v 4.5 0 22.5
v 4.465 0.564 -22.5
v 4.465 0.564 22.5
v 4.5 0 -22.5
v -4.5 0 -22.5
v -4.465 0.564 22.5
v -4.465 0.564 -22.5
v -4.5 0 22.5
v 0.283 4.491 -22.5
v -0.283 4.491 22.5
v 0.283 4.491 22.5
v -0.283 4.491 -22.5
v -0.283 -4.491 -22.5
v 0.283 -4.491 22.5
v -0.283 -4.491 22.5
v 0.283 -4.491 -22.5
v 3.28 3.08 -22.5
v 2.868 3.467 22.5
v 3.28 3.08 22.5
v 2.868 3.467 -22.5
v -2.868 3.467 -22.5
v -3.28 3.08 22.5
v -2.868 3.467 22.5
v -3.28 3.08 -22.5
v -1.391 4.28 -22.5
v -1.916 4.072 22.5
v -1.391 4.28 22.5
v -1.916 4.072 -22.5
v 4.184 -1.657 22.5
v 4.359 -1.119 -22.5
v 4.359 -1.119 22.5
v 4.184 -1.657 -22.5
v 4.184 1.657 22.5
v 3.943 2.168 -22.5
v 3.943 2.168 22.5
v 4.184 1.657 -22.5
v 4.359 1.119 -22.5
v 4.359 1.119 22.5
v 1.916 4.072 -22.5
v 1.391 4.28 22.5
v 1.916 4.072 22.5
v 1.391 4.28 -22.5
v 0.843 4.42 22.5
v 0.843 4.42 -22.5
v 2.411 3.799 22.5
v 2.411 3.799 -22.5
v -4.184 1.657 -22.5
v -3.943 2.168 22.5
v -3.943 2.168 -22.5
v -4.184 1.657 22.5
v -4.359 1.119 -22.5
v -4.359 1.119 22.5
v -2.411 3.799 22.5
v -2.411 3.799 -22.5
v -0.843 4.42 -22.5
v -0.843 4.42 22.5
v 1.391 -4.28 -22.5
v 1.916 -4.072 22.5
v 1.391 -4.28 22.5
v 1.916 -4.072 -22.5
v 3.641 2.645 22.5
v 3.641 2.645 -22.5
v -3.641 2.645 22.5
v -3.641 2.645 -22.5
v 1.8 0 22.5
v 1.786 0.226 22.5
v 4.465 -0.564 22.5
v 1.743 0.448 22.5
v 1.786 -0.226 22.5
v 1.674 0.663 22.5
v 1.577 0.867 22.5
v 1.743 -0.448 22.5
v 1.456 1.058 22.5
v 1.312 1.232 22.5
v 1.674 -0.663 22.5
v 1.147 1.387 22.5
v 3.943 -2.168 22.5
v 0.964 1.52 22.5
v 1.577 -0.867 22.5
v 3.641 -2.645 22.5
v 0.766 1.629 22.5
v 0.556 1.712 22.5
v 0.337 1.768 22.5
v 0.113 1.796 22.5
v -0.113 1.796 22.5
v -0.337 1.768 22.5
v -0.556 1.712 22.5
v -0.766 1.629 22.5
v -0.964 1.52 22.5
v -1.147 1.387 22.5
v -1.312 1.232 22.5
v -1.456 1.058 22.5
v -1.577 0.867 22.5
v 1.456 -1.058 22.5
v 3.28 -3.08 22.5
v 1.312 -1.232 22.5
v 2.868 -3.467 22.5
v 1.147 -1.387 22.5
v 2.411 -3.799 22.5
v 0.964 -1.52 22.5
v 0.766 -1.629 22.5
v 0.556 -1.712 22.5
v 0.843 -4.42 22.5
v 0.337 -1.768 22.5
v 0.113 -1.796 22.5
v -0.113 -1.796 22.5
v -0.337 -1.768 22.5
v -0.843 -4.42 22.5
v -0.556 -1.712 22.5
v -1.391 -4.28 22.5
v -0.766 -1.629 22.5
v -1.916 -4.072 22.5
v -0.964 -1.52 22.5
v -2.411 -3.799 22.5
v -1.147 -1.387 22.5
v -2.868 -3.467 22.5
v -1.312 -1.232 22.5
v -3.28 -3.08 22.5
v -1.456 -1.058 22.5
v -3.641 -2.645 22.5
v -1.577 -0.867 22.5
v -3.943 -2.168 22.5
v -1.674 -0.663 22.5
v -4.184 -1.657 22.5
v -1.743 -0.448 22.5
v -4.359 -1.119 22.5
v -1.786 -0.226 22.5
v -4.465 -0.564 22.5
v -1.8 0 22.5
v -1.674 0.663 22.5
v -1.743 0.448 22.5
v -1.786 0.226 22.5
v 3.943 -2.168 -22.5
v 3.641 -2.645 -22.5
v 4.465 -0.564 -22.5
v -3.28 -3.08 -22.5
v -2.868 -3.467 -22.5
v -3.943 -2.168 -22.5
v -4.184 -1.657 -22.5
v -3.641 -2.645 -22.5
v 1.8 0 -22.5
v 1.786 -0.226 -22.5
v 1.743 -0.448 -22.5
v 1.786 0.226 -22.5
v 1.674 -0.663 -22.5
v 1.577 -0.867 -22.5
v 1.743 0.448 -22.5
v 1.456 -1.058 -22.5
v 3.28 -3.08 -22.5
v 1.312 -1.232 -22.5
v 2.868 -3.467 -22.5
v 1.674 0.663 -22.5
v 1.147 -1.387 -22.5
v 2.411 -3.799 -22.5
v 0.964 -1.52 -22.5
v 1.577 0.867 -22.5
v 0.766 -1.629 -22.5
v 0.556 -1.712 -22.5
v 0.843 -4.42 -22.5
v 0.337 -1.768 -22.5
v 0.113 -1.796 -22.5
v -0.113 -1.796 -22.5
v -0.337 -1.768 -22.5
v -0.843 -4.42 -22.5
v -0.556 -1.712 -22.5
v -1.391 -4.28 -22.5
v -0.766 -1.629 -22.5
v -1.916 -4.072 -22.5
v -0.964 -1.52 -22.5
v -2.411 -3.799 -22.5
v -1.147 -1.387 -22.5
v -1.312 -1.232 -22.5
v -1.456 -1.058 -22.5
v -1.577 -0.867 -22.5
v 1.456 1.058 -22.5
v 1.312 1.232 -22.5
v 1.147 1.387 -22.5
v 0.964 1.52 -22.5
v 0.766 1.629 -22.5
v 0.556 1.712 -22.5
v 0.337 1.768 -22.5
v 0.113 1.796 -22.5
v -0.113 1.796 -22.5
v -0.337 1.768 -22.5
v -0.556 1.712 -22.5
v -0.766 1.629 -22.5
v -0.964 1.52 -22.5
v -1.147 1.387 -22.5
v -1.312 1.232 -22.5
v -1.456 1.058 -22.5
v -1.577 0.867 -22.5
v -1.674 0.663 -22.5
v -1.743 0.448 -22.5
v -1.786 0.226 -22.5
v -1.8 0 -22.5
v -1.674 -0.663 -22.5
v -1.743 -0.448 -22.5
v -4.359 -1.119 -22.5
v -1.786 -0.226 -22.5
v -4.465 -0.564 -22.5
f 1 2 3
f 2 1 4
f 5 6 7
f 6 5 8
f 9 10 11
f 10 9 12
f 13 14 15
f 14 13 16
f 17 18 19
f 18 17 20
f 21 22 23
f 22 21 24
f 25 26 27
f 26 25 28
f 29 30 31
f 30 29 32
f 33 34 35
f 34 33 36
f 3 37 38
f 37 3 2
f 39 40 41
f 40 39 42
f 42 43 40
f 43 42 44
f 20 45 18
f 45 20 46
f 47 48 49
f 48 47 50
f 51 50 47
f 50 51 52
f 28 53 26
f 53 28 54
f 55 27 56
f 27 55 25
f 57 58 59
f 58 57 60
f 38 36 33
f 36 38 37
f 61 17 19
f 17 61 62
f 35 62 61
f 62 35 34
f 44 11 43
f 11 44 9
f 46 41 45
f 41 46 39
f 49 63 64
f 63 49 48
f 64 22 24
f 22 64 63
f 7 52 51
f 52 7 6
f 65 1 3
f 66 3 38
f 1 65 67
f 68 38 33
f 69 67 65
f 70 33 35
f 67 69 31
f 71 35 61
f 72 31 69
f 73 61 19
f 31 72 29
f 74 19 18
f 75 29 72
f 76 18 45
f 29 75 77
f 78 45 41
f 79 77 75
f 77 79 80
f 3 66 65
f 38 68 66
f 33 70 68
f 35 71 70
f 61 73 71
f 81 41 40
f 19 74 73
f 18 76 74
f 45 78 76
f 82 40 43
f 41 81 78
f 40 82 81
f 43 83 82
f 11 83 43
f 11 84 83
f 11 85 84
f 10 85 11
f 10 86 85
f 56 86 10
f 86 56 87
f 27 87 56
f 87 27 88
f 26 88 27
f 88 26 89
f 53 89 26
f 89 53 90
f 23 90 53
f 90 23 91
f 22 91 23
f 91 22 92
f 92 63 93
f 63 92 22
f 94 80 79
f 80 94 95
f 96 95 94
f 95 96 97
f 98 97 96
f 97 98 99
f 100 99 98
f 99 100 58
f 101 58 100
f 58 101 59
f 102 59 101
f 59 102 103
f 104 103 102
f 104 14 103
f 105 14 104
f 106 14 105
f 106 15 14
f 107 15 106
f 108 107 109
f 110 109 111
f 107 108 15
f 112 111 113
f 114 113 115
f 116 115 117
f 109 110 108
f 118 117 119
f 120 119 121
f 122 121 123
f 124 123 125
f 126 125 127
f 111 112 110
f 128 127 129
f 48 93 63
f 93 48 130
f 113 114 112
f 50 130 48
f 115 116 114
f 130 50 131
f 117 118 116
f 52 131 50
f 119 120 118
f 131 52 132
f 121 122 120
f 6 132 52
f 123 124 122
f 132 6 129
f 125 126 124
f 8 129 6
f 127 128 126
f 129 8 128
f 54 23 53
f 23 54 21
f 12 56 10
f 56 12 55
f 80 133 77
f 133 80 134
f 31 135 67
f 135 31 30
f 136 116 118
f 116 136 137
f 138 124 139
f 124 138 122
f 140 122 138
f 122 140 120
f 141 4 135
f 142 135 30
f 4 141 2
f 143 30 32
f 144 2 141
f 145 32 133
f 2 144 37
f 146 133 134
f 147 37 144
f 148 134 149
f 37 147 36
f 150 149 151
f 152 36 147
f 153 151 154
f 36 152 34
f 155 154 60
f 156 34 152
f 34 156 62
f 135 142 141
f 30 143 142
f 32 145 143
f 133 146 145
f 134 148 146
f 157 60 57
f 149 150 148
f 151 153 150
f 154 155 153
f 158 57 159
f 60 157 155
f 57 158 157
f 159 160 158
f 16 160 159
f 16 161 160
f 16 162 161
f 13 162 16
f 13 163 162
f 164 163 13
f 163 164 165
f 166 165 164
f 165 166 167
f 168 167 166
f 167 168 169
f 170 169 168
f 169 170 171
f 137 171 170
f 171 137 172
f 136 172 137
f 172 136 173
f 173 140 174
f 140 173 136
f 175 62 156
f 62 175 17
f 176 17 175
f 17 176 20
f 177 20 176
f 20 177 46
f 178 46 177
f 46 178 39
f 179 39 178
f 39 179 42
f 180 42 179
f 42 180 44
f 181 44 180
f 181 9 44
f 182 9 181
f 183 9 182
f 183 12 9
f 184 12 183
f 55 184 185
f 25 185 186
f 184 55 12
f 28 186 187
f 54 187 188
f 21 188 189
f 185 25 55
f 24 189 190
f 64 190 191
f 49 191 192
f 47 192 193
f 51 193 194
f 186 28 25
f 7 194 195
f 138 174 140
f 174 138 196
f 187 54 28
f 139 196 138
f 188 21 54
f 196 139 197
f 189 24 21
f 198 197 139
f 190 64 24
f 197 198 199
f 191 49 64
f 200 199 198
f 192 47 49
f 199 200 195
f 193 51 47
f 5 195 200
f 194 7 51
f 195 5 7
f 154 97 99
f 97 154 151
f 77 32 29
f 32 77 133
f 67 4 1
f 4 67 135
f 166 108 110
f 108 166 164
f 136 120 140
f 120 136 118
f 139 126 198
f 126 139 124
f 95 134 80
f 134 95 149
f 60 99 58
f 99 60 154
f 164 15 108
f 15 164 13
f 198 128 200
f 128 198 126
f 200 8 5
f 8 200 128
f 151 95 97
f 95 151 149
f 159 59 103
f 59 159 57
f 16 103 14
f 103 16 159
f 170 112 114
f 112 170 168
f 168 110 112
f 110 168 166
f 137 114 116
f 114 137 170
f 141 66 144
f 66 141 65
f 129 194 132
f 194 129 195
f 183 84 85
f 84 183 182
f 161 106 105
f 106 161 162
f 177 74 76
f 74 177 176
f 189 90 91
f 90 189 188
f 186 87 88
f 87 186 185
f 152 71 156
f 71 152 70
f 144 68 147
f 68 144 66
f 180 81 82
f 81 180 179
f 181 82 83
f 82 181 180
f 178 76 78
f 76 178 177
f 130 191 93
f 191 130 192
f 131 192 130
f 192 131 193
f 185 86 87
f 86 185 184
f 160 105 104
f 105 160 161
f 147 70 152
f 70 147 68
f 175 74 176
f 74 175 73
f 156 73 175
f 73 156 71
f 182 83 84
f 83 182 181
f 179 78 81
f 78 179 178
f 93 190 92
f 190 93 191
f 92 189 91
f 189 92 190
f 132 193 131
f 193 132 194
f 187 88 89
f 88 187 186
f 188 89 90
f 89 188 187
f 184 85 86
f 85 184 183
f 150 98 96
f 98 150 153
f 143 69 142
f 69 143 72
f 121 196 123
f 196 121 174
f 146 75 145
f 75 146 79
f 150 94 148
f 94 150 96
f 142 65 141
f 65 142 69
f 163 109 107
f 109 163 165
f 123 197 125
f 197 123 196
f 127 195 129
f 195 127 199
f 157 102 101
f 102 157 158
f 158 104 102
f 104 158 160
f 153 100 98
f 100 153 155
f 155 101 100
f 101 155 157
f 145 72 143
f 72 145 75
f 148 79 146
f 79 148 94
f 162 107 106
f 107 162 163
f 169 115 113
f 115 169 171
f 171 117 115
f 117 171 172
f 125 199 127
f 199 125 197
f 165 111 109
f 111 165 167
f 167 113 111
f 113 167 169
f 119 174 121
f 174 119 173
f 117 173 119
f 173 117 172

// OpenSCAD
$fn = 50;


difference() {
	union() {
		translate(v = [0, 0, -22.5000000000]) {
			cylinder(h = 45, r = 4.5000000000);
		}
	}
	union() {
		translate(v = [0, 0, -100.0000000000]) {
			cylinder(h = 200, r = 1.8000000000);
		}
	}
}
